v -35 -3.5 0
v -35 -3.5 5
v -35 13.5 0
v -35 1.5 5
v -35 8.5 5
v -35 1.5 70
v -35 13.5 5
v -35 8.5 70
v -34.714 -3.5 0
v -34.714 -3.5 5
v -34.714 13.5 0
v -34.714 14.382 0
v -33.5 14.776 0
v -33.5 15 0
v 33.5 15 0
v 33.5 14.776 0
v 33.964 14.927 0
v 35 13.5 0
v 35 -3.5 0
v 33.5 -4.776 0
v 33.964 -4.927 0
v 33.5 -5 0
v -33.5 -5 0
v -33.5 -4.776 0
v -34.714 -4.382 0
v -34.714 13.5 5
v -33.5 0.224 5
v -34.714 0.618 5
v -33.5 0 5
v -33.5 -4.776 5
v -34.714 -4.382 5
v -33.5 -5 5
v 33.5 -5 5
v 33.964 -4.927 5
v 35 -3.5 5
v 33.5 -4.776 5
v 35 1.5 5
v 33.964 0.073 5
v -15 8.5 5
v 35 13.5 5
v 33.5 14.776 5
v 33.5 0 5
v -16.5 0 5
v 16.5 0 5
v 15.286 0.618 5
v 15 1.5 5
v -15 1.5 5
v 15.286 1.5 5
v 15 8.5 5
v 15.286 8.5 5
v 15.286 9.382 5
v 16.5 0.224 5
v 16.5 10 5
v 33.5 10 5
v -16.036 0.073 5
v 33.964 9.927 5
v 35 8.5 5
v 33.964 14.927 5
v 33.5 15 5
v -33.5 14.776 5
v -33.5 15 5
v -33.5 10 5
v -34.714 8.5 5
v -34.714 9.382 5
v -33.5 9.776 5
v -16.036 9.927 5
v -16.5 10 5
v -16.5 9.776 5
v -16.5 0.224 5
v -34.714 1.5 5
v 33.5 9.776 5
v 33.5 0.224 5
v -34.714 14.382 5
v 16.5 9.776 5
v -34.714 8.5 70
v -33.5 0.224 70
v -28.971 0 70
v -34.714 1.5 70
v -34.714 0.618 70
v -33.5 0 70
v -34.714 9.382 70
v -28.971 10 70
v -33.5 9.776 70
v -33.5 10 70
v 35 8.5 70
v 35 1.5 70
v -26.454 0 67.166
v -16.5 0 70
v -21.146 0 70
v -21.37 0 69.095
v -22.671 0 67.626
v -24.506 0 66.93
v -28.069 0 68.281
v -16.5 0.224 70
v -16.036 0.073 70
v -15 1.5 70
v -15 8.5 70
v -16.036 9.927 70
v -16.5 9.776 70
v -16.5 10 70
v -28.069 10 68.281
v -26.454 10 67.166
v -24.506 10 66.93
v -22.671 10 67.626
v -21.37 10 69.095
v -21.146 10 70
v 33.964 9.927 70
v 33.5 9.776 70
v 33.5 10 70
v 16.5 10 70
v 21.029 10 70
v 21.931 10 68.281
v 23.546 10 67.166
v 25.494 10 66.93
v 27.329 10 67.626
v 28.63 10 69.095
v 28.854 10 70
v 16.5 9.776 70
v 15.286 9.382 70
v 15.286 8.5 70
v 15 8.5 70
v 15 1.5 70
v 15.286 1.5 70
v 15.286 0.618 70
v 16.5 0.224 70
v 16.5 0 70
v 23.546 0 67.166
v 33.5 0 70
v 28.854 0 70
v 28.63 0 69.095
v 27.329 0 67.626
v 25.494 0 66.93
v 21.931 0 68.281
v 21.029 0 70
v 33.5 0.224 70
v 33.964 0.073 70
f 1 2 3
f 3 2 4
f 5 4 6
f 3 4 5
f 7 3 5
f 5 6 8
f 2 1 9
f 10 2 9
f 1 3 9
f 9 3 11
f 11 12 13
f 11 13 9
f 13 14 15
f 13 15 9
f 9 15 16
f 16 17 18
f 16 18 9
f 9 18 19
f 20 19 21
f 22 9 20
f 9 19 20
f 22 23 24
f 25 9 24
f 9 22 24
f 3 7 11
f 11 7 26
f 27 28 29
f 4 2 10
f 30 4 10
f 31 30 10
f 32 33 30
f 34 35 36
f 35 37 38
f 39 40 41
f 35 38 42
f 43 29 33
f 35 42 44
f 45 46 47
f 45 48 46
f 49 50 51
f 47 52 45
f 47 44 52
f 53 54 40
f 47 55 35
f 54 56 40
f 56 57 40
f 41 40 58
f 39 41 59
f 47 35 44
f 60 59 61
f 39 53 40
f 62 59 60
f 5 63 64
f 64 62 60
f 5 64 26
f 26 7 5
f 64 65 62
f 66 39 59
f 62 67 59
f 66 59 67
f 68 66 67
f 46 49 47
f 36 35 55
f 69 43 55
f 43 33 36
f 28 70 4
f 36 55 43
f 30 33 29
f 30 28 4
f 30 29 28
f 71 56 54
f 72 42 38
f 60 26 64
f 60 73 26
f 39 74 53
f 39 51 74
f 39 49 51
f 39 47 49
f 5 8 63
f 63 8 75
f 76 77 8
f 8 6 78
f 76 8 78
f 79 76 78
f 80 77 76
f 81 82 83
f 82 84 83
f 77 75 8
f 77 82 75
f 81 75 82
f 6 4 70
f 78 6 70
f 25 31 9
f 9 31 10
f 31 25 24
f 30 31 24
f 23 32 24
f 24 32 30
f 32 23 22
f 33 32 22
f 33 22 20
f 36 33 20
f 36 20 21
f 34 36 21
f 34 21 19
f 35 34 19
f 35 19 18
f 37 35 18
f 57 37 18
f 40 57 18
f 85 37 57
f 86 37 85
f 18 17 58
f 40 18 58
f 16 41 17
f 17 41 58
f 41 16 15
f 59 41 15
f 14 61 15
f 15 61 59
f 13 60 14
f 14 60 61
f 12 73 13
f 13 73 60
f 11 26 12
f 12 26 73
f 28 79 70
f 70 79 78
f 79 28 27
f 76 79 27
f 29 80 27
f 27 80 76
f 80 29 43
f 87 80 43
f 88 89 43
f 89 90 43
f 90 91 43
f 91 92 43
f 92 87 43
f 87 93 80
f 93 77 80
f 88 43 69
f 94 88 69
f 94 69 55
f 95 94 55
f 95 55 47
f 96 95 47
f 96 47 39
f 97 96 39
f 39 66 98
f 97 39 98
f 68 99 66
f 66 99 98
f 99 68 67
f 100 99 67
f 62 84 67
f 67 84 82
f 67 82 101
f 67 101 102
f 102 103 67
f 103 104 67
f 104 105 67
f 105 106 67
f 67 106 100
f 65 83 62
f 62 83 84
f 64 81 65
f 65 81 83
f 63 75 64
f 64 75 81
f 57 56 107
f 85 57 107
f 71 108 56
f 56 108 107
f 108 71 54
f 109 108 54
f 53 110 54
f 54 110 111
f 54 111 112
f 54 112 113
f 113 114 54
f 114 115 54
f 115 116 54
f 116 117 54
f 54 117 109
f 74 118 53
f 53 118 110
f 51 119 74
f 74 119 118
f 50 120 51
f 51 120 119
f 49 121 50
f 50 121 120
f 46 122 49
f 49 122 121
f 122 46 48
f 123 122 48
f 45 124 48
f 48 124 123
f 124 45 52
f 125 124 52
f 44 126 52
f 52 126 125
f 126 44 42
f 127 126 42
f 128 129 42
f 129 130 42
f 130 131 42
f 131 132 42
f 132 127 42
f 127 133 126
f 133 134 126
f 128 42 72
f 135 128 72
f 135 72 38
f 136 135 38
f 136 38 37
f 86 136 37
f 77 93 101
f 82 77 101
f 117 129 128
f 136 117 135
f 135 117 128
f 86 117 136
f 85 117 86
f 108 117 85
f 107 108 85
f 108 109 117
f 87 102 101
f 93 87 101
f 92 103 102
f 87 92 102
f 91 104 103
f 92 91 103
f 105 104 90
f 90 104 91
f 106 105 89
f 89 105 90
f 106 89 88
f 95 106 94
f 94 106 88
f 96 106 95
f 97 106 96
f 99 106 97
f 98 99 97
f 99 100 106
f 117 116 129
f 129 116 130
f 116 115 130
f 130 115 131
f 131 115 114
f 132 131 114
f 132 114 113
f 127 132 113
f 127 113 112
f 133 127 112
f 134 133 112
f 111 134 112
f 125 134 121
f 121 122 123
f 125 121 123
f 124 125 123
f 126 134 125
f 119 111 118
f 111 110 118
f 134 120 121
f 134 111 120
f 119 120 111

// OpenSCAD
use <MCAD/boxes.scad>;

rod_dia = 8.2;
rod_spacing = 50;
stand_height = 70;
stand_depth = 10;

stand_width = rod_spacing + 20;

// center of the stand - 1/2 rod spacing
left_cylinder_x =  -rod_spacing / 2;

right_cylinder_x = rod_spacing / 2;

union(){
translate([0, stand_depth / 2, 5/2])
roundedBox([stand_width, 20, 5], radius=1.5, sidesonly=true);
	difference(){
		// stand body
		union(){
			translate([-stand_width/2 + 10, stand_depth / 2, stand_height / 2])
			roundedBox([20, 10, stand_height], radius=1.5, sidesonly=true);
			
			translate([stand_width/2 - 10, stand_depth / 2, stand_height / 2])
			roundedBox([20, 10, stand_height], radius=1.5, sidesonly=true);
		}

		//cylinder cutouts
		translate([left_cylinder_x, stand_depth * 1.5 , stand_height  + 1]) rotate([90,0,0])
			cylinder(h=stand_depth * 2, r=rod_dia/2);

		translate([right_cylinder_x, stand_depth * 1.5 , stand_height  + 1]) rotate([90,0,0])
			cylinder(h=stand_depth * 2, r=rod_dia/2);
	}
}
